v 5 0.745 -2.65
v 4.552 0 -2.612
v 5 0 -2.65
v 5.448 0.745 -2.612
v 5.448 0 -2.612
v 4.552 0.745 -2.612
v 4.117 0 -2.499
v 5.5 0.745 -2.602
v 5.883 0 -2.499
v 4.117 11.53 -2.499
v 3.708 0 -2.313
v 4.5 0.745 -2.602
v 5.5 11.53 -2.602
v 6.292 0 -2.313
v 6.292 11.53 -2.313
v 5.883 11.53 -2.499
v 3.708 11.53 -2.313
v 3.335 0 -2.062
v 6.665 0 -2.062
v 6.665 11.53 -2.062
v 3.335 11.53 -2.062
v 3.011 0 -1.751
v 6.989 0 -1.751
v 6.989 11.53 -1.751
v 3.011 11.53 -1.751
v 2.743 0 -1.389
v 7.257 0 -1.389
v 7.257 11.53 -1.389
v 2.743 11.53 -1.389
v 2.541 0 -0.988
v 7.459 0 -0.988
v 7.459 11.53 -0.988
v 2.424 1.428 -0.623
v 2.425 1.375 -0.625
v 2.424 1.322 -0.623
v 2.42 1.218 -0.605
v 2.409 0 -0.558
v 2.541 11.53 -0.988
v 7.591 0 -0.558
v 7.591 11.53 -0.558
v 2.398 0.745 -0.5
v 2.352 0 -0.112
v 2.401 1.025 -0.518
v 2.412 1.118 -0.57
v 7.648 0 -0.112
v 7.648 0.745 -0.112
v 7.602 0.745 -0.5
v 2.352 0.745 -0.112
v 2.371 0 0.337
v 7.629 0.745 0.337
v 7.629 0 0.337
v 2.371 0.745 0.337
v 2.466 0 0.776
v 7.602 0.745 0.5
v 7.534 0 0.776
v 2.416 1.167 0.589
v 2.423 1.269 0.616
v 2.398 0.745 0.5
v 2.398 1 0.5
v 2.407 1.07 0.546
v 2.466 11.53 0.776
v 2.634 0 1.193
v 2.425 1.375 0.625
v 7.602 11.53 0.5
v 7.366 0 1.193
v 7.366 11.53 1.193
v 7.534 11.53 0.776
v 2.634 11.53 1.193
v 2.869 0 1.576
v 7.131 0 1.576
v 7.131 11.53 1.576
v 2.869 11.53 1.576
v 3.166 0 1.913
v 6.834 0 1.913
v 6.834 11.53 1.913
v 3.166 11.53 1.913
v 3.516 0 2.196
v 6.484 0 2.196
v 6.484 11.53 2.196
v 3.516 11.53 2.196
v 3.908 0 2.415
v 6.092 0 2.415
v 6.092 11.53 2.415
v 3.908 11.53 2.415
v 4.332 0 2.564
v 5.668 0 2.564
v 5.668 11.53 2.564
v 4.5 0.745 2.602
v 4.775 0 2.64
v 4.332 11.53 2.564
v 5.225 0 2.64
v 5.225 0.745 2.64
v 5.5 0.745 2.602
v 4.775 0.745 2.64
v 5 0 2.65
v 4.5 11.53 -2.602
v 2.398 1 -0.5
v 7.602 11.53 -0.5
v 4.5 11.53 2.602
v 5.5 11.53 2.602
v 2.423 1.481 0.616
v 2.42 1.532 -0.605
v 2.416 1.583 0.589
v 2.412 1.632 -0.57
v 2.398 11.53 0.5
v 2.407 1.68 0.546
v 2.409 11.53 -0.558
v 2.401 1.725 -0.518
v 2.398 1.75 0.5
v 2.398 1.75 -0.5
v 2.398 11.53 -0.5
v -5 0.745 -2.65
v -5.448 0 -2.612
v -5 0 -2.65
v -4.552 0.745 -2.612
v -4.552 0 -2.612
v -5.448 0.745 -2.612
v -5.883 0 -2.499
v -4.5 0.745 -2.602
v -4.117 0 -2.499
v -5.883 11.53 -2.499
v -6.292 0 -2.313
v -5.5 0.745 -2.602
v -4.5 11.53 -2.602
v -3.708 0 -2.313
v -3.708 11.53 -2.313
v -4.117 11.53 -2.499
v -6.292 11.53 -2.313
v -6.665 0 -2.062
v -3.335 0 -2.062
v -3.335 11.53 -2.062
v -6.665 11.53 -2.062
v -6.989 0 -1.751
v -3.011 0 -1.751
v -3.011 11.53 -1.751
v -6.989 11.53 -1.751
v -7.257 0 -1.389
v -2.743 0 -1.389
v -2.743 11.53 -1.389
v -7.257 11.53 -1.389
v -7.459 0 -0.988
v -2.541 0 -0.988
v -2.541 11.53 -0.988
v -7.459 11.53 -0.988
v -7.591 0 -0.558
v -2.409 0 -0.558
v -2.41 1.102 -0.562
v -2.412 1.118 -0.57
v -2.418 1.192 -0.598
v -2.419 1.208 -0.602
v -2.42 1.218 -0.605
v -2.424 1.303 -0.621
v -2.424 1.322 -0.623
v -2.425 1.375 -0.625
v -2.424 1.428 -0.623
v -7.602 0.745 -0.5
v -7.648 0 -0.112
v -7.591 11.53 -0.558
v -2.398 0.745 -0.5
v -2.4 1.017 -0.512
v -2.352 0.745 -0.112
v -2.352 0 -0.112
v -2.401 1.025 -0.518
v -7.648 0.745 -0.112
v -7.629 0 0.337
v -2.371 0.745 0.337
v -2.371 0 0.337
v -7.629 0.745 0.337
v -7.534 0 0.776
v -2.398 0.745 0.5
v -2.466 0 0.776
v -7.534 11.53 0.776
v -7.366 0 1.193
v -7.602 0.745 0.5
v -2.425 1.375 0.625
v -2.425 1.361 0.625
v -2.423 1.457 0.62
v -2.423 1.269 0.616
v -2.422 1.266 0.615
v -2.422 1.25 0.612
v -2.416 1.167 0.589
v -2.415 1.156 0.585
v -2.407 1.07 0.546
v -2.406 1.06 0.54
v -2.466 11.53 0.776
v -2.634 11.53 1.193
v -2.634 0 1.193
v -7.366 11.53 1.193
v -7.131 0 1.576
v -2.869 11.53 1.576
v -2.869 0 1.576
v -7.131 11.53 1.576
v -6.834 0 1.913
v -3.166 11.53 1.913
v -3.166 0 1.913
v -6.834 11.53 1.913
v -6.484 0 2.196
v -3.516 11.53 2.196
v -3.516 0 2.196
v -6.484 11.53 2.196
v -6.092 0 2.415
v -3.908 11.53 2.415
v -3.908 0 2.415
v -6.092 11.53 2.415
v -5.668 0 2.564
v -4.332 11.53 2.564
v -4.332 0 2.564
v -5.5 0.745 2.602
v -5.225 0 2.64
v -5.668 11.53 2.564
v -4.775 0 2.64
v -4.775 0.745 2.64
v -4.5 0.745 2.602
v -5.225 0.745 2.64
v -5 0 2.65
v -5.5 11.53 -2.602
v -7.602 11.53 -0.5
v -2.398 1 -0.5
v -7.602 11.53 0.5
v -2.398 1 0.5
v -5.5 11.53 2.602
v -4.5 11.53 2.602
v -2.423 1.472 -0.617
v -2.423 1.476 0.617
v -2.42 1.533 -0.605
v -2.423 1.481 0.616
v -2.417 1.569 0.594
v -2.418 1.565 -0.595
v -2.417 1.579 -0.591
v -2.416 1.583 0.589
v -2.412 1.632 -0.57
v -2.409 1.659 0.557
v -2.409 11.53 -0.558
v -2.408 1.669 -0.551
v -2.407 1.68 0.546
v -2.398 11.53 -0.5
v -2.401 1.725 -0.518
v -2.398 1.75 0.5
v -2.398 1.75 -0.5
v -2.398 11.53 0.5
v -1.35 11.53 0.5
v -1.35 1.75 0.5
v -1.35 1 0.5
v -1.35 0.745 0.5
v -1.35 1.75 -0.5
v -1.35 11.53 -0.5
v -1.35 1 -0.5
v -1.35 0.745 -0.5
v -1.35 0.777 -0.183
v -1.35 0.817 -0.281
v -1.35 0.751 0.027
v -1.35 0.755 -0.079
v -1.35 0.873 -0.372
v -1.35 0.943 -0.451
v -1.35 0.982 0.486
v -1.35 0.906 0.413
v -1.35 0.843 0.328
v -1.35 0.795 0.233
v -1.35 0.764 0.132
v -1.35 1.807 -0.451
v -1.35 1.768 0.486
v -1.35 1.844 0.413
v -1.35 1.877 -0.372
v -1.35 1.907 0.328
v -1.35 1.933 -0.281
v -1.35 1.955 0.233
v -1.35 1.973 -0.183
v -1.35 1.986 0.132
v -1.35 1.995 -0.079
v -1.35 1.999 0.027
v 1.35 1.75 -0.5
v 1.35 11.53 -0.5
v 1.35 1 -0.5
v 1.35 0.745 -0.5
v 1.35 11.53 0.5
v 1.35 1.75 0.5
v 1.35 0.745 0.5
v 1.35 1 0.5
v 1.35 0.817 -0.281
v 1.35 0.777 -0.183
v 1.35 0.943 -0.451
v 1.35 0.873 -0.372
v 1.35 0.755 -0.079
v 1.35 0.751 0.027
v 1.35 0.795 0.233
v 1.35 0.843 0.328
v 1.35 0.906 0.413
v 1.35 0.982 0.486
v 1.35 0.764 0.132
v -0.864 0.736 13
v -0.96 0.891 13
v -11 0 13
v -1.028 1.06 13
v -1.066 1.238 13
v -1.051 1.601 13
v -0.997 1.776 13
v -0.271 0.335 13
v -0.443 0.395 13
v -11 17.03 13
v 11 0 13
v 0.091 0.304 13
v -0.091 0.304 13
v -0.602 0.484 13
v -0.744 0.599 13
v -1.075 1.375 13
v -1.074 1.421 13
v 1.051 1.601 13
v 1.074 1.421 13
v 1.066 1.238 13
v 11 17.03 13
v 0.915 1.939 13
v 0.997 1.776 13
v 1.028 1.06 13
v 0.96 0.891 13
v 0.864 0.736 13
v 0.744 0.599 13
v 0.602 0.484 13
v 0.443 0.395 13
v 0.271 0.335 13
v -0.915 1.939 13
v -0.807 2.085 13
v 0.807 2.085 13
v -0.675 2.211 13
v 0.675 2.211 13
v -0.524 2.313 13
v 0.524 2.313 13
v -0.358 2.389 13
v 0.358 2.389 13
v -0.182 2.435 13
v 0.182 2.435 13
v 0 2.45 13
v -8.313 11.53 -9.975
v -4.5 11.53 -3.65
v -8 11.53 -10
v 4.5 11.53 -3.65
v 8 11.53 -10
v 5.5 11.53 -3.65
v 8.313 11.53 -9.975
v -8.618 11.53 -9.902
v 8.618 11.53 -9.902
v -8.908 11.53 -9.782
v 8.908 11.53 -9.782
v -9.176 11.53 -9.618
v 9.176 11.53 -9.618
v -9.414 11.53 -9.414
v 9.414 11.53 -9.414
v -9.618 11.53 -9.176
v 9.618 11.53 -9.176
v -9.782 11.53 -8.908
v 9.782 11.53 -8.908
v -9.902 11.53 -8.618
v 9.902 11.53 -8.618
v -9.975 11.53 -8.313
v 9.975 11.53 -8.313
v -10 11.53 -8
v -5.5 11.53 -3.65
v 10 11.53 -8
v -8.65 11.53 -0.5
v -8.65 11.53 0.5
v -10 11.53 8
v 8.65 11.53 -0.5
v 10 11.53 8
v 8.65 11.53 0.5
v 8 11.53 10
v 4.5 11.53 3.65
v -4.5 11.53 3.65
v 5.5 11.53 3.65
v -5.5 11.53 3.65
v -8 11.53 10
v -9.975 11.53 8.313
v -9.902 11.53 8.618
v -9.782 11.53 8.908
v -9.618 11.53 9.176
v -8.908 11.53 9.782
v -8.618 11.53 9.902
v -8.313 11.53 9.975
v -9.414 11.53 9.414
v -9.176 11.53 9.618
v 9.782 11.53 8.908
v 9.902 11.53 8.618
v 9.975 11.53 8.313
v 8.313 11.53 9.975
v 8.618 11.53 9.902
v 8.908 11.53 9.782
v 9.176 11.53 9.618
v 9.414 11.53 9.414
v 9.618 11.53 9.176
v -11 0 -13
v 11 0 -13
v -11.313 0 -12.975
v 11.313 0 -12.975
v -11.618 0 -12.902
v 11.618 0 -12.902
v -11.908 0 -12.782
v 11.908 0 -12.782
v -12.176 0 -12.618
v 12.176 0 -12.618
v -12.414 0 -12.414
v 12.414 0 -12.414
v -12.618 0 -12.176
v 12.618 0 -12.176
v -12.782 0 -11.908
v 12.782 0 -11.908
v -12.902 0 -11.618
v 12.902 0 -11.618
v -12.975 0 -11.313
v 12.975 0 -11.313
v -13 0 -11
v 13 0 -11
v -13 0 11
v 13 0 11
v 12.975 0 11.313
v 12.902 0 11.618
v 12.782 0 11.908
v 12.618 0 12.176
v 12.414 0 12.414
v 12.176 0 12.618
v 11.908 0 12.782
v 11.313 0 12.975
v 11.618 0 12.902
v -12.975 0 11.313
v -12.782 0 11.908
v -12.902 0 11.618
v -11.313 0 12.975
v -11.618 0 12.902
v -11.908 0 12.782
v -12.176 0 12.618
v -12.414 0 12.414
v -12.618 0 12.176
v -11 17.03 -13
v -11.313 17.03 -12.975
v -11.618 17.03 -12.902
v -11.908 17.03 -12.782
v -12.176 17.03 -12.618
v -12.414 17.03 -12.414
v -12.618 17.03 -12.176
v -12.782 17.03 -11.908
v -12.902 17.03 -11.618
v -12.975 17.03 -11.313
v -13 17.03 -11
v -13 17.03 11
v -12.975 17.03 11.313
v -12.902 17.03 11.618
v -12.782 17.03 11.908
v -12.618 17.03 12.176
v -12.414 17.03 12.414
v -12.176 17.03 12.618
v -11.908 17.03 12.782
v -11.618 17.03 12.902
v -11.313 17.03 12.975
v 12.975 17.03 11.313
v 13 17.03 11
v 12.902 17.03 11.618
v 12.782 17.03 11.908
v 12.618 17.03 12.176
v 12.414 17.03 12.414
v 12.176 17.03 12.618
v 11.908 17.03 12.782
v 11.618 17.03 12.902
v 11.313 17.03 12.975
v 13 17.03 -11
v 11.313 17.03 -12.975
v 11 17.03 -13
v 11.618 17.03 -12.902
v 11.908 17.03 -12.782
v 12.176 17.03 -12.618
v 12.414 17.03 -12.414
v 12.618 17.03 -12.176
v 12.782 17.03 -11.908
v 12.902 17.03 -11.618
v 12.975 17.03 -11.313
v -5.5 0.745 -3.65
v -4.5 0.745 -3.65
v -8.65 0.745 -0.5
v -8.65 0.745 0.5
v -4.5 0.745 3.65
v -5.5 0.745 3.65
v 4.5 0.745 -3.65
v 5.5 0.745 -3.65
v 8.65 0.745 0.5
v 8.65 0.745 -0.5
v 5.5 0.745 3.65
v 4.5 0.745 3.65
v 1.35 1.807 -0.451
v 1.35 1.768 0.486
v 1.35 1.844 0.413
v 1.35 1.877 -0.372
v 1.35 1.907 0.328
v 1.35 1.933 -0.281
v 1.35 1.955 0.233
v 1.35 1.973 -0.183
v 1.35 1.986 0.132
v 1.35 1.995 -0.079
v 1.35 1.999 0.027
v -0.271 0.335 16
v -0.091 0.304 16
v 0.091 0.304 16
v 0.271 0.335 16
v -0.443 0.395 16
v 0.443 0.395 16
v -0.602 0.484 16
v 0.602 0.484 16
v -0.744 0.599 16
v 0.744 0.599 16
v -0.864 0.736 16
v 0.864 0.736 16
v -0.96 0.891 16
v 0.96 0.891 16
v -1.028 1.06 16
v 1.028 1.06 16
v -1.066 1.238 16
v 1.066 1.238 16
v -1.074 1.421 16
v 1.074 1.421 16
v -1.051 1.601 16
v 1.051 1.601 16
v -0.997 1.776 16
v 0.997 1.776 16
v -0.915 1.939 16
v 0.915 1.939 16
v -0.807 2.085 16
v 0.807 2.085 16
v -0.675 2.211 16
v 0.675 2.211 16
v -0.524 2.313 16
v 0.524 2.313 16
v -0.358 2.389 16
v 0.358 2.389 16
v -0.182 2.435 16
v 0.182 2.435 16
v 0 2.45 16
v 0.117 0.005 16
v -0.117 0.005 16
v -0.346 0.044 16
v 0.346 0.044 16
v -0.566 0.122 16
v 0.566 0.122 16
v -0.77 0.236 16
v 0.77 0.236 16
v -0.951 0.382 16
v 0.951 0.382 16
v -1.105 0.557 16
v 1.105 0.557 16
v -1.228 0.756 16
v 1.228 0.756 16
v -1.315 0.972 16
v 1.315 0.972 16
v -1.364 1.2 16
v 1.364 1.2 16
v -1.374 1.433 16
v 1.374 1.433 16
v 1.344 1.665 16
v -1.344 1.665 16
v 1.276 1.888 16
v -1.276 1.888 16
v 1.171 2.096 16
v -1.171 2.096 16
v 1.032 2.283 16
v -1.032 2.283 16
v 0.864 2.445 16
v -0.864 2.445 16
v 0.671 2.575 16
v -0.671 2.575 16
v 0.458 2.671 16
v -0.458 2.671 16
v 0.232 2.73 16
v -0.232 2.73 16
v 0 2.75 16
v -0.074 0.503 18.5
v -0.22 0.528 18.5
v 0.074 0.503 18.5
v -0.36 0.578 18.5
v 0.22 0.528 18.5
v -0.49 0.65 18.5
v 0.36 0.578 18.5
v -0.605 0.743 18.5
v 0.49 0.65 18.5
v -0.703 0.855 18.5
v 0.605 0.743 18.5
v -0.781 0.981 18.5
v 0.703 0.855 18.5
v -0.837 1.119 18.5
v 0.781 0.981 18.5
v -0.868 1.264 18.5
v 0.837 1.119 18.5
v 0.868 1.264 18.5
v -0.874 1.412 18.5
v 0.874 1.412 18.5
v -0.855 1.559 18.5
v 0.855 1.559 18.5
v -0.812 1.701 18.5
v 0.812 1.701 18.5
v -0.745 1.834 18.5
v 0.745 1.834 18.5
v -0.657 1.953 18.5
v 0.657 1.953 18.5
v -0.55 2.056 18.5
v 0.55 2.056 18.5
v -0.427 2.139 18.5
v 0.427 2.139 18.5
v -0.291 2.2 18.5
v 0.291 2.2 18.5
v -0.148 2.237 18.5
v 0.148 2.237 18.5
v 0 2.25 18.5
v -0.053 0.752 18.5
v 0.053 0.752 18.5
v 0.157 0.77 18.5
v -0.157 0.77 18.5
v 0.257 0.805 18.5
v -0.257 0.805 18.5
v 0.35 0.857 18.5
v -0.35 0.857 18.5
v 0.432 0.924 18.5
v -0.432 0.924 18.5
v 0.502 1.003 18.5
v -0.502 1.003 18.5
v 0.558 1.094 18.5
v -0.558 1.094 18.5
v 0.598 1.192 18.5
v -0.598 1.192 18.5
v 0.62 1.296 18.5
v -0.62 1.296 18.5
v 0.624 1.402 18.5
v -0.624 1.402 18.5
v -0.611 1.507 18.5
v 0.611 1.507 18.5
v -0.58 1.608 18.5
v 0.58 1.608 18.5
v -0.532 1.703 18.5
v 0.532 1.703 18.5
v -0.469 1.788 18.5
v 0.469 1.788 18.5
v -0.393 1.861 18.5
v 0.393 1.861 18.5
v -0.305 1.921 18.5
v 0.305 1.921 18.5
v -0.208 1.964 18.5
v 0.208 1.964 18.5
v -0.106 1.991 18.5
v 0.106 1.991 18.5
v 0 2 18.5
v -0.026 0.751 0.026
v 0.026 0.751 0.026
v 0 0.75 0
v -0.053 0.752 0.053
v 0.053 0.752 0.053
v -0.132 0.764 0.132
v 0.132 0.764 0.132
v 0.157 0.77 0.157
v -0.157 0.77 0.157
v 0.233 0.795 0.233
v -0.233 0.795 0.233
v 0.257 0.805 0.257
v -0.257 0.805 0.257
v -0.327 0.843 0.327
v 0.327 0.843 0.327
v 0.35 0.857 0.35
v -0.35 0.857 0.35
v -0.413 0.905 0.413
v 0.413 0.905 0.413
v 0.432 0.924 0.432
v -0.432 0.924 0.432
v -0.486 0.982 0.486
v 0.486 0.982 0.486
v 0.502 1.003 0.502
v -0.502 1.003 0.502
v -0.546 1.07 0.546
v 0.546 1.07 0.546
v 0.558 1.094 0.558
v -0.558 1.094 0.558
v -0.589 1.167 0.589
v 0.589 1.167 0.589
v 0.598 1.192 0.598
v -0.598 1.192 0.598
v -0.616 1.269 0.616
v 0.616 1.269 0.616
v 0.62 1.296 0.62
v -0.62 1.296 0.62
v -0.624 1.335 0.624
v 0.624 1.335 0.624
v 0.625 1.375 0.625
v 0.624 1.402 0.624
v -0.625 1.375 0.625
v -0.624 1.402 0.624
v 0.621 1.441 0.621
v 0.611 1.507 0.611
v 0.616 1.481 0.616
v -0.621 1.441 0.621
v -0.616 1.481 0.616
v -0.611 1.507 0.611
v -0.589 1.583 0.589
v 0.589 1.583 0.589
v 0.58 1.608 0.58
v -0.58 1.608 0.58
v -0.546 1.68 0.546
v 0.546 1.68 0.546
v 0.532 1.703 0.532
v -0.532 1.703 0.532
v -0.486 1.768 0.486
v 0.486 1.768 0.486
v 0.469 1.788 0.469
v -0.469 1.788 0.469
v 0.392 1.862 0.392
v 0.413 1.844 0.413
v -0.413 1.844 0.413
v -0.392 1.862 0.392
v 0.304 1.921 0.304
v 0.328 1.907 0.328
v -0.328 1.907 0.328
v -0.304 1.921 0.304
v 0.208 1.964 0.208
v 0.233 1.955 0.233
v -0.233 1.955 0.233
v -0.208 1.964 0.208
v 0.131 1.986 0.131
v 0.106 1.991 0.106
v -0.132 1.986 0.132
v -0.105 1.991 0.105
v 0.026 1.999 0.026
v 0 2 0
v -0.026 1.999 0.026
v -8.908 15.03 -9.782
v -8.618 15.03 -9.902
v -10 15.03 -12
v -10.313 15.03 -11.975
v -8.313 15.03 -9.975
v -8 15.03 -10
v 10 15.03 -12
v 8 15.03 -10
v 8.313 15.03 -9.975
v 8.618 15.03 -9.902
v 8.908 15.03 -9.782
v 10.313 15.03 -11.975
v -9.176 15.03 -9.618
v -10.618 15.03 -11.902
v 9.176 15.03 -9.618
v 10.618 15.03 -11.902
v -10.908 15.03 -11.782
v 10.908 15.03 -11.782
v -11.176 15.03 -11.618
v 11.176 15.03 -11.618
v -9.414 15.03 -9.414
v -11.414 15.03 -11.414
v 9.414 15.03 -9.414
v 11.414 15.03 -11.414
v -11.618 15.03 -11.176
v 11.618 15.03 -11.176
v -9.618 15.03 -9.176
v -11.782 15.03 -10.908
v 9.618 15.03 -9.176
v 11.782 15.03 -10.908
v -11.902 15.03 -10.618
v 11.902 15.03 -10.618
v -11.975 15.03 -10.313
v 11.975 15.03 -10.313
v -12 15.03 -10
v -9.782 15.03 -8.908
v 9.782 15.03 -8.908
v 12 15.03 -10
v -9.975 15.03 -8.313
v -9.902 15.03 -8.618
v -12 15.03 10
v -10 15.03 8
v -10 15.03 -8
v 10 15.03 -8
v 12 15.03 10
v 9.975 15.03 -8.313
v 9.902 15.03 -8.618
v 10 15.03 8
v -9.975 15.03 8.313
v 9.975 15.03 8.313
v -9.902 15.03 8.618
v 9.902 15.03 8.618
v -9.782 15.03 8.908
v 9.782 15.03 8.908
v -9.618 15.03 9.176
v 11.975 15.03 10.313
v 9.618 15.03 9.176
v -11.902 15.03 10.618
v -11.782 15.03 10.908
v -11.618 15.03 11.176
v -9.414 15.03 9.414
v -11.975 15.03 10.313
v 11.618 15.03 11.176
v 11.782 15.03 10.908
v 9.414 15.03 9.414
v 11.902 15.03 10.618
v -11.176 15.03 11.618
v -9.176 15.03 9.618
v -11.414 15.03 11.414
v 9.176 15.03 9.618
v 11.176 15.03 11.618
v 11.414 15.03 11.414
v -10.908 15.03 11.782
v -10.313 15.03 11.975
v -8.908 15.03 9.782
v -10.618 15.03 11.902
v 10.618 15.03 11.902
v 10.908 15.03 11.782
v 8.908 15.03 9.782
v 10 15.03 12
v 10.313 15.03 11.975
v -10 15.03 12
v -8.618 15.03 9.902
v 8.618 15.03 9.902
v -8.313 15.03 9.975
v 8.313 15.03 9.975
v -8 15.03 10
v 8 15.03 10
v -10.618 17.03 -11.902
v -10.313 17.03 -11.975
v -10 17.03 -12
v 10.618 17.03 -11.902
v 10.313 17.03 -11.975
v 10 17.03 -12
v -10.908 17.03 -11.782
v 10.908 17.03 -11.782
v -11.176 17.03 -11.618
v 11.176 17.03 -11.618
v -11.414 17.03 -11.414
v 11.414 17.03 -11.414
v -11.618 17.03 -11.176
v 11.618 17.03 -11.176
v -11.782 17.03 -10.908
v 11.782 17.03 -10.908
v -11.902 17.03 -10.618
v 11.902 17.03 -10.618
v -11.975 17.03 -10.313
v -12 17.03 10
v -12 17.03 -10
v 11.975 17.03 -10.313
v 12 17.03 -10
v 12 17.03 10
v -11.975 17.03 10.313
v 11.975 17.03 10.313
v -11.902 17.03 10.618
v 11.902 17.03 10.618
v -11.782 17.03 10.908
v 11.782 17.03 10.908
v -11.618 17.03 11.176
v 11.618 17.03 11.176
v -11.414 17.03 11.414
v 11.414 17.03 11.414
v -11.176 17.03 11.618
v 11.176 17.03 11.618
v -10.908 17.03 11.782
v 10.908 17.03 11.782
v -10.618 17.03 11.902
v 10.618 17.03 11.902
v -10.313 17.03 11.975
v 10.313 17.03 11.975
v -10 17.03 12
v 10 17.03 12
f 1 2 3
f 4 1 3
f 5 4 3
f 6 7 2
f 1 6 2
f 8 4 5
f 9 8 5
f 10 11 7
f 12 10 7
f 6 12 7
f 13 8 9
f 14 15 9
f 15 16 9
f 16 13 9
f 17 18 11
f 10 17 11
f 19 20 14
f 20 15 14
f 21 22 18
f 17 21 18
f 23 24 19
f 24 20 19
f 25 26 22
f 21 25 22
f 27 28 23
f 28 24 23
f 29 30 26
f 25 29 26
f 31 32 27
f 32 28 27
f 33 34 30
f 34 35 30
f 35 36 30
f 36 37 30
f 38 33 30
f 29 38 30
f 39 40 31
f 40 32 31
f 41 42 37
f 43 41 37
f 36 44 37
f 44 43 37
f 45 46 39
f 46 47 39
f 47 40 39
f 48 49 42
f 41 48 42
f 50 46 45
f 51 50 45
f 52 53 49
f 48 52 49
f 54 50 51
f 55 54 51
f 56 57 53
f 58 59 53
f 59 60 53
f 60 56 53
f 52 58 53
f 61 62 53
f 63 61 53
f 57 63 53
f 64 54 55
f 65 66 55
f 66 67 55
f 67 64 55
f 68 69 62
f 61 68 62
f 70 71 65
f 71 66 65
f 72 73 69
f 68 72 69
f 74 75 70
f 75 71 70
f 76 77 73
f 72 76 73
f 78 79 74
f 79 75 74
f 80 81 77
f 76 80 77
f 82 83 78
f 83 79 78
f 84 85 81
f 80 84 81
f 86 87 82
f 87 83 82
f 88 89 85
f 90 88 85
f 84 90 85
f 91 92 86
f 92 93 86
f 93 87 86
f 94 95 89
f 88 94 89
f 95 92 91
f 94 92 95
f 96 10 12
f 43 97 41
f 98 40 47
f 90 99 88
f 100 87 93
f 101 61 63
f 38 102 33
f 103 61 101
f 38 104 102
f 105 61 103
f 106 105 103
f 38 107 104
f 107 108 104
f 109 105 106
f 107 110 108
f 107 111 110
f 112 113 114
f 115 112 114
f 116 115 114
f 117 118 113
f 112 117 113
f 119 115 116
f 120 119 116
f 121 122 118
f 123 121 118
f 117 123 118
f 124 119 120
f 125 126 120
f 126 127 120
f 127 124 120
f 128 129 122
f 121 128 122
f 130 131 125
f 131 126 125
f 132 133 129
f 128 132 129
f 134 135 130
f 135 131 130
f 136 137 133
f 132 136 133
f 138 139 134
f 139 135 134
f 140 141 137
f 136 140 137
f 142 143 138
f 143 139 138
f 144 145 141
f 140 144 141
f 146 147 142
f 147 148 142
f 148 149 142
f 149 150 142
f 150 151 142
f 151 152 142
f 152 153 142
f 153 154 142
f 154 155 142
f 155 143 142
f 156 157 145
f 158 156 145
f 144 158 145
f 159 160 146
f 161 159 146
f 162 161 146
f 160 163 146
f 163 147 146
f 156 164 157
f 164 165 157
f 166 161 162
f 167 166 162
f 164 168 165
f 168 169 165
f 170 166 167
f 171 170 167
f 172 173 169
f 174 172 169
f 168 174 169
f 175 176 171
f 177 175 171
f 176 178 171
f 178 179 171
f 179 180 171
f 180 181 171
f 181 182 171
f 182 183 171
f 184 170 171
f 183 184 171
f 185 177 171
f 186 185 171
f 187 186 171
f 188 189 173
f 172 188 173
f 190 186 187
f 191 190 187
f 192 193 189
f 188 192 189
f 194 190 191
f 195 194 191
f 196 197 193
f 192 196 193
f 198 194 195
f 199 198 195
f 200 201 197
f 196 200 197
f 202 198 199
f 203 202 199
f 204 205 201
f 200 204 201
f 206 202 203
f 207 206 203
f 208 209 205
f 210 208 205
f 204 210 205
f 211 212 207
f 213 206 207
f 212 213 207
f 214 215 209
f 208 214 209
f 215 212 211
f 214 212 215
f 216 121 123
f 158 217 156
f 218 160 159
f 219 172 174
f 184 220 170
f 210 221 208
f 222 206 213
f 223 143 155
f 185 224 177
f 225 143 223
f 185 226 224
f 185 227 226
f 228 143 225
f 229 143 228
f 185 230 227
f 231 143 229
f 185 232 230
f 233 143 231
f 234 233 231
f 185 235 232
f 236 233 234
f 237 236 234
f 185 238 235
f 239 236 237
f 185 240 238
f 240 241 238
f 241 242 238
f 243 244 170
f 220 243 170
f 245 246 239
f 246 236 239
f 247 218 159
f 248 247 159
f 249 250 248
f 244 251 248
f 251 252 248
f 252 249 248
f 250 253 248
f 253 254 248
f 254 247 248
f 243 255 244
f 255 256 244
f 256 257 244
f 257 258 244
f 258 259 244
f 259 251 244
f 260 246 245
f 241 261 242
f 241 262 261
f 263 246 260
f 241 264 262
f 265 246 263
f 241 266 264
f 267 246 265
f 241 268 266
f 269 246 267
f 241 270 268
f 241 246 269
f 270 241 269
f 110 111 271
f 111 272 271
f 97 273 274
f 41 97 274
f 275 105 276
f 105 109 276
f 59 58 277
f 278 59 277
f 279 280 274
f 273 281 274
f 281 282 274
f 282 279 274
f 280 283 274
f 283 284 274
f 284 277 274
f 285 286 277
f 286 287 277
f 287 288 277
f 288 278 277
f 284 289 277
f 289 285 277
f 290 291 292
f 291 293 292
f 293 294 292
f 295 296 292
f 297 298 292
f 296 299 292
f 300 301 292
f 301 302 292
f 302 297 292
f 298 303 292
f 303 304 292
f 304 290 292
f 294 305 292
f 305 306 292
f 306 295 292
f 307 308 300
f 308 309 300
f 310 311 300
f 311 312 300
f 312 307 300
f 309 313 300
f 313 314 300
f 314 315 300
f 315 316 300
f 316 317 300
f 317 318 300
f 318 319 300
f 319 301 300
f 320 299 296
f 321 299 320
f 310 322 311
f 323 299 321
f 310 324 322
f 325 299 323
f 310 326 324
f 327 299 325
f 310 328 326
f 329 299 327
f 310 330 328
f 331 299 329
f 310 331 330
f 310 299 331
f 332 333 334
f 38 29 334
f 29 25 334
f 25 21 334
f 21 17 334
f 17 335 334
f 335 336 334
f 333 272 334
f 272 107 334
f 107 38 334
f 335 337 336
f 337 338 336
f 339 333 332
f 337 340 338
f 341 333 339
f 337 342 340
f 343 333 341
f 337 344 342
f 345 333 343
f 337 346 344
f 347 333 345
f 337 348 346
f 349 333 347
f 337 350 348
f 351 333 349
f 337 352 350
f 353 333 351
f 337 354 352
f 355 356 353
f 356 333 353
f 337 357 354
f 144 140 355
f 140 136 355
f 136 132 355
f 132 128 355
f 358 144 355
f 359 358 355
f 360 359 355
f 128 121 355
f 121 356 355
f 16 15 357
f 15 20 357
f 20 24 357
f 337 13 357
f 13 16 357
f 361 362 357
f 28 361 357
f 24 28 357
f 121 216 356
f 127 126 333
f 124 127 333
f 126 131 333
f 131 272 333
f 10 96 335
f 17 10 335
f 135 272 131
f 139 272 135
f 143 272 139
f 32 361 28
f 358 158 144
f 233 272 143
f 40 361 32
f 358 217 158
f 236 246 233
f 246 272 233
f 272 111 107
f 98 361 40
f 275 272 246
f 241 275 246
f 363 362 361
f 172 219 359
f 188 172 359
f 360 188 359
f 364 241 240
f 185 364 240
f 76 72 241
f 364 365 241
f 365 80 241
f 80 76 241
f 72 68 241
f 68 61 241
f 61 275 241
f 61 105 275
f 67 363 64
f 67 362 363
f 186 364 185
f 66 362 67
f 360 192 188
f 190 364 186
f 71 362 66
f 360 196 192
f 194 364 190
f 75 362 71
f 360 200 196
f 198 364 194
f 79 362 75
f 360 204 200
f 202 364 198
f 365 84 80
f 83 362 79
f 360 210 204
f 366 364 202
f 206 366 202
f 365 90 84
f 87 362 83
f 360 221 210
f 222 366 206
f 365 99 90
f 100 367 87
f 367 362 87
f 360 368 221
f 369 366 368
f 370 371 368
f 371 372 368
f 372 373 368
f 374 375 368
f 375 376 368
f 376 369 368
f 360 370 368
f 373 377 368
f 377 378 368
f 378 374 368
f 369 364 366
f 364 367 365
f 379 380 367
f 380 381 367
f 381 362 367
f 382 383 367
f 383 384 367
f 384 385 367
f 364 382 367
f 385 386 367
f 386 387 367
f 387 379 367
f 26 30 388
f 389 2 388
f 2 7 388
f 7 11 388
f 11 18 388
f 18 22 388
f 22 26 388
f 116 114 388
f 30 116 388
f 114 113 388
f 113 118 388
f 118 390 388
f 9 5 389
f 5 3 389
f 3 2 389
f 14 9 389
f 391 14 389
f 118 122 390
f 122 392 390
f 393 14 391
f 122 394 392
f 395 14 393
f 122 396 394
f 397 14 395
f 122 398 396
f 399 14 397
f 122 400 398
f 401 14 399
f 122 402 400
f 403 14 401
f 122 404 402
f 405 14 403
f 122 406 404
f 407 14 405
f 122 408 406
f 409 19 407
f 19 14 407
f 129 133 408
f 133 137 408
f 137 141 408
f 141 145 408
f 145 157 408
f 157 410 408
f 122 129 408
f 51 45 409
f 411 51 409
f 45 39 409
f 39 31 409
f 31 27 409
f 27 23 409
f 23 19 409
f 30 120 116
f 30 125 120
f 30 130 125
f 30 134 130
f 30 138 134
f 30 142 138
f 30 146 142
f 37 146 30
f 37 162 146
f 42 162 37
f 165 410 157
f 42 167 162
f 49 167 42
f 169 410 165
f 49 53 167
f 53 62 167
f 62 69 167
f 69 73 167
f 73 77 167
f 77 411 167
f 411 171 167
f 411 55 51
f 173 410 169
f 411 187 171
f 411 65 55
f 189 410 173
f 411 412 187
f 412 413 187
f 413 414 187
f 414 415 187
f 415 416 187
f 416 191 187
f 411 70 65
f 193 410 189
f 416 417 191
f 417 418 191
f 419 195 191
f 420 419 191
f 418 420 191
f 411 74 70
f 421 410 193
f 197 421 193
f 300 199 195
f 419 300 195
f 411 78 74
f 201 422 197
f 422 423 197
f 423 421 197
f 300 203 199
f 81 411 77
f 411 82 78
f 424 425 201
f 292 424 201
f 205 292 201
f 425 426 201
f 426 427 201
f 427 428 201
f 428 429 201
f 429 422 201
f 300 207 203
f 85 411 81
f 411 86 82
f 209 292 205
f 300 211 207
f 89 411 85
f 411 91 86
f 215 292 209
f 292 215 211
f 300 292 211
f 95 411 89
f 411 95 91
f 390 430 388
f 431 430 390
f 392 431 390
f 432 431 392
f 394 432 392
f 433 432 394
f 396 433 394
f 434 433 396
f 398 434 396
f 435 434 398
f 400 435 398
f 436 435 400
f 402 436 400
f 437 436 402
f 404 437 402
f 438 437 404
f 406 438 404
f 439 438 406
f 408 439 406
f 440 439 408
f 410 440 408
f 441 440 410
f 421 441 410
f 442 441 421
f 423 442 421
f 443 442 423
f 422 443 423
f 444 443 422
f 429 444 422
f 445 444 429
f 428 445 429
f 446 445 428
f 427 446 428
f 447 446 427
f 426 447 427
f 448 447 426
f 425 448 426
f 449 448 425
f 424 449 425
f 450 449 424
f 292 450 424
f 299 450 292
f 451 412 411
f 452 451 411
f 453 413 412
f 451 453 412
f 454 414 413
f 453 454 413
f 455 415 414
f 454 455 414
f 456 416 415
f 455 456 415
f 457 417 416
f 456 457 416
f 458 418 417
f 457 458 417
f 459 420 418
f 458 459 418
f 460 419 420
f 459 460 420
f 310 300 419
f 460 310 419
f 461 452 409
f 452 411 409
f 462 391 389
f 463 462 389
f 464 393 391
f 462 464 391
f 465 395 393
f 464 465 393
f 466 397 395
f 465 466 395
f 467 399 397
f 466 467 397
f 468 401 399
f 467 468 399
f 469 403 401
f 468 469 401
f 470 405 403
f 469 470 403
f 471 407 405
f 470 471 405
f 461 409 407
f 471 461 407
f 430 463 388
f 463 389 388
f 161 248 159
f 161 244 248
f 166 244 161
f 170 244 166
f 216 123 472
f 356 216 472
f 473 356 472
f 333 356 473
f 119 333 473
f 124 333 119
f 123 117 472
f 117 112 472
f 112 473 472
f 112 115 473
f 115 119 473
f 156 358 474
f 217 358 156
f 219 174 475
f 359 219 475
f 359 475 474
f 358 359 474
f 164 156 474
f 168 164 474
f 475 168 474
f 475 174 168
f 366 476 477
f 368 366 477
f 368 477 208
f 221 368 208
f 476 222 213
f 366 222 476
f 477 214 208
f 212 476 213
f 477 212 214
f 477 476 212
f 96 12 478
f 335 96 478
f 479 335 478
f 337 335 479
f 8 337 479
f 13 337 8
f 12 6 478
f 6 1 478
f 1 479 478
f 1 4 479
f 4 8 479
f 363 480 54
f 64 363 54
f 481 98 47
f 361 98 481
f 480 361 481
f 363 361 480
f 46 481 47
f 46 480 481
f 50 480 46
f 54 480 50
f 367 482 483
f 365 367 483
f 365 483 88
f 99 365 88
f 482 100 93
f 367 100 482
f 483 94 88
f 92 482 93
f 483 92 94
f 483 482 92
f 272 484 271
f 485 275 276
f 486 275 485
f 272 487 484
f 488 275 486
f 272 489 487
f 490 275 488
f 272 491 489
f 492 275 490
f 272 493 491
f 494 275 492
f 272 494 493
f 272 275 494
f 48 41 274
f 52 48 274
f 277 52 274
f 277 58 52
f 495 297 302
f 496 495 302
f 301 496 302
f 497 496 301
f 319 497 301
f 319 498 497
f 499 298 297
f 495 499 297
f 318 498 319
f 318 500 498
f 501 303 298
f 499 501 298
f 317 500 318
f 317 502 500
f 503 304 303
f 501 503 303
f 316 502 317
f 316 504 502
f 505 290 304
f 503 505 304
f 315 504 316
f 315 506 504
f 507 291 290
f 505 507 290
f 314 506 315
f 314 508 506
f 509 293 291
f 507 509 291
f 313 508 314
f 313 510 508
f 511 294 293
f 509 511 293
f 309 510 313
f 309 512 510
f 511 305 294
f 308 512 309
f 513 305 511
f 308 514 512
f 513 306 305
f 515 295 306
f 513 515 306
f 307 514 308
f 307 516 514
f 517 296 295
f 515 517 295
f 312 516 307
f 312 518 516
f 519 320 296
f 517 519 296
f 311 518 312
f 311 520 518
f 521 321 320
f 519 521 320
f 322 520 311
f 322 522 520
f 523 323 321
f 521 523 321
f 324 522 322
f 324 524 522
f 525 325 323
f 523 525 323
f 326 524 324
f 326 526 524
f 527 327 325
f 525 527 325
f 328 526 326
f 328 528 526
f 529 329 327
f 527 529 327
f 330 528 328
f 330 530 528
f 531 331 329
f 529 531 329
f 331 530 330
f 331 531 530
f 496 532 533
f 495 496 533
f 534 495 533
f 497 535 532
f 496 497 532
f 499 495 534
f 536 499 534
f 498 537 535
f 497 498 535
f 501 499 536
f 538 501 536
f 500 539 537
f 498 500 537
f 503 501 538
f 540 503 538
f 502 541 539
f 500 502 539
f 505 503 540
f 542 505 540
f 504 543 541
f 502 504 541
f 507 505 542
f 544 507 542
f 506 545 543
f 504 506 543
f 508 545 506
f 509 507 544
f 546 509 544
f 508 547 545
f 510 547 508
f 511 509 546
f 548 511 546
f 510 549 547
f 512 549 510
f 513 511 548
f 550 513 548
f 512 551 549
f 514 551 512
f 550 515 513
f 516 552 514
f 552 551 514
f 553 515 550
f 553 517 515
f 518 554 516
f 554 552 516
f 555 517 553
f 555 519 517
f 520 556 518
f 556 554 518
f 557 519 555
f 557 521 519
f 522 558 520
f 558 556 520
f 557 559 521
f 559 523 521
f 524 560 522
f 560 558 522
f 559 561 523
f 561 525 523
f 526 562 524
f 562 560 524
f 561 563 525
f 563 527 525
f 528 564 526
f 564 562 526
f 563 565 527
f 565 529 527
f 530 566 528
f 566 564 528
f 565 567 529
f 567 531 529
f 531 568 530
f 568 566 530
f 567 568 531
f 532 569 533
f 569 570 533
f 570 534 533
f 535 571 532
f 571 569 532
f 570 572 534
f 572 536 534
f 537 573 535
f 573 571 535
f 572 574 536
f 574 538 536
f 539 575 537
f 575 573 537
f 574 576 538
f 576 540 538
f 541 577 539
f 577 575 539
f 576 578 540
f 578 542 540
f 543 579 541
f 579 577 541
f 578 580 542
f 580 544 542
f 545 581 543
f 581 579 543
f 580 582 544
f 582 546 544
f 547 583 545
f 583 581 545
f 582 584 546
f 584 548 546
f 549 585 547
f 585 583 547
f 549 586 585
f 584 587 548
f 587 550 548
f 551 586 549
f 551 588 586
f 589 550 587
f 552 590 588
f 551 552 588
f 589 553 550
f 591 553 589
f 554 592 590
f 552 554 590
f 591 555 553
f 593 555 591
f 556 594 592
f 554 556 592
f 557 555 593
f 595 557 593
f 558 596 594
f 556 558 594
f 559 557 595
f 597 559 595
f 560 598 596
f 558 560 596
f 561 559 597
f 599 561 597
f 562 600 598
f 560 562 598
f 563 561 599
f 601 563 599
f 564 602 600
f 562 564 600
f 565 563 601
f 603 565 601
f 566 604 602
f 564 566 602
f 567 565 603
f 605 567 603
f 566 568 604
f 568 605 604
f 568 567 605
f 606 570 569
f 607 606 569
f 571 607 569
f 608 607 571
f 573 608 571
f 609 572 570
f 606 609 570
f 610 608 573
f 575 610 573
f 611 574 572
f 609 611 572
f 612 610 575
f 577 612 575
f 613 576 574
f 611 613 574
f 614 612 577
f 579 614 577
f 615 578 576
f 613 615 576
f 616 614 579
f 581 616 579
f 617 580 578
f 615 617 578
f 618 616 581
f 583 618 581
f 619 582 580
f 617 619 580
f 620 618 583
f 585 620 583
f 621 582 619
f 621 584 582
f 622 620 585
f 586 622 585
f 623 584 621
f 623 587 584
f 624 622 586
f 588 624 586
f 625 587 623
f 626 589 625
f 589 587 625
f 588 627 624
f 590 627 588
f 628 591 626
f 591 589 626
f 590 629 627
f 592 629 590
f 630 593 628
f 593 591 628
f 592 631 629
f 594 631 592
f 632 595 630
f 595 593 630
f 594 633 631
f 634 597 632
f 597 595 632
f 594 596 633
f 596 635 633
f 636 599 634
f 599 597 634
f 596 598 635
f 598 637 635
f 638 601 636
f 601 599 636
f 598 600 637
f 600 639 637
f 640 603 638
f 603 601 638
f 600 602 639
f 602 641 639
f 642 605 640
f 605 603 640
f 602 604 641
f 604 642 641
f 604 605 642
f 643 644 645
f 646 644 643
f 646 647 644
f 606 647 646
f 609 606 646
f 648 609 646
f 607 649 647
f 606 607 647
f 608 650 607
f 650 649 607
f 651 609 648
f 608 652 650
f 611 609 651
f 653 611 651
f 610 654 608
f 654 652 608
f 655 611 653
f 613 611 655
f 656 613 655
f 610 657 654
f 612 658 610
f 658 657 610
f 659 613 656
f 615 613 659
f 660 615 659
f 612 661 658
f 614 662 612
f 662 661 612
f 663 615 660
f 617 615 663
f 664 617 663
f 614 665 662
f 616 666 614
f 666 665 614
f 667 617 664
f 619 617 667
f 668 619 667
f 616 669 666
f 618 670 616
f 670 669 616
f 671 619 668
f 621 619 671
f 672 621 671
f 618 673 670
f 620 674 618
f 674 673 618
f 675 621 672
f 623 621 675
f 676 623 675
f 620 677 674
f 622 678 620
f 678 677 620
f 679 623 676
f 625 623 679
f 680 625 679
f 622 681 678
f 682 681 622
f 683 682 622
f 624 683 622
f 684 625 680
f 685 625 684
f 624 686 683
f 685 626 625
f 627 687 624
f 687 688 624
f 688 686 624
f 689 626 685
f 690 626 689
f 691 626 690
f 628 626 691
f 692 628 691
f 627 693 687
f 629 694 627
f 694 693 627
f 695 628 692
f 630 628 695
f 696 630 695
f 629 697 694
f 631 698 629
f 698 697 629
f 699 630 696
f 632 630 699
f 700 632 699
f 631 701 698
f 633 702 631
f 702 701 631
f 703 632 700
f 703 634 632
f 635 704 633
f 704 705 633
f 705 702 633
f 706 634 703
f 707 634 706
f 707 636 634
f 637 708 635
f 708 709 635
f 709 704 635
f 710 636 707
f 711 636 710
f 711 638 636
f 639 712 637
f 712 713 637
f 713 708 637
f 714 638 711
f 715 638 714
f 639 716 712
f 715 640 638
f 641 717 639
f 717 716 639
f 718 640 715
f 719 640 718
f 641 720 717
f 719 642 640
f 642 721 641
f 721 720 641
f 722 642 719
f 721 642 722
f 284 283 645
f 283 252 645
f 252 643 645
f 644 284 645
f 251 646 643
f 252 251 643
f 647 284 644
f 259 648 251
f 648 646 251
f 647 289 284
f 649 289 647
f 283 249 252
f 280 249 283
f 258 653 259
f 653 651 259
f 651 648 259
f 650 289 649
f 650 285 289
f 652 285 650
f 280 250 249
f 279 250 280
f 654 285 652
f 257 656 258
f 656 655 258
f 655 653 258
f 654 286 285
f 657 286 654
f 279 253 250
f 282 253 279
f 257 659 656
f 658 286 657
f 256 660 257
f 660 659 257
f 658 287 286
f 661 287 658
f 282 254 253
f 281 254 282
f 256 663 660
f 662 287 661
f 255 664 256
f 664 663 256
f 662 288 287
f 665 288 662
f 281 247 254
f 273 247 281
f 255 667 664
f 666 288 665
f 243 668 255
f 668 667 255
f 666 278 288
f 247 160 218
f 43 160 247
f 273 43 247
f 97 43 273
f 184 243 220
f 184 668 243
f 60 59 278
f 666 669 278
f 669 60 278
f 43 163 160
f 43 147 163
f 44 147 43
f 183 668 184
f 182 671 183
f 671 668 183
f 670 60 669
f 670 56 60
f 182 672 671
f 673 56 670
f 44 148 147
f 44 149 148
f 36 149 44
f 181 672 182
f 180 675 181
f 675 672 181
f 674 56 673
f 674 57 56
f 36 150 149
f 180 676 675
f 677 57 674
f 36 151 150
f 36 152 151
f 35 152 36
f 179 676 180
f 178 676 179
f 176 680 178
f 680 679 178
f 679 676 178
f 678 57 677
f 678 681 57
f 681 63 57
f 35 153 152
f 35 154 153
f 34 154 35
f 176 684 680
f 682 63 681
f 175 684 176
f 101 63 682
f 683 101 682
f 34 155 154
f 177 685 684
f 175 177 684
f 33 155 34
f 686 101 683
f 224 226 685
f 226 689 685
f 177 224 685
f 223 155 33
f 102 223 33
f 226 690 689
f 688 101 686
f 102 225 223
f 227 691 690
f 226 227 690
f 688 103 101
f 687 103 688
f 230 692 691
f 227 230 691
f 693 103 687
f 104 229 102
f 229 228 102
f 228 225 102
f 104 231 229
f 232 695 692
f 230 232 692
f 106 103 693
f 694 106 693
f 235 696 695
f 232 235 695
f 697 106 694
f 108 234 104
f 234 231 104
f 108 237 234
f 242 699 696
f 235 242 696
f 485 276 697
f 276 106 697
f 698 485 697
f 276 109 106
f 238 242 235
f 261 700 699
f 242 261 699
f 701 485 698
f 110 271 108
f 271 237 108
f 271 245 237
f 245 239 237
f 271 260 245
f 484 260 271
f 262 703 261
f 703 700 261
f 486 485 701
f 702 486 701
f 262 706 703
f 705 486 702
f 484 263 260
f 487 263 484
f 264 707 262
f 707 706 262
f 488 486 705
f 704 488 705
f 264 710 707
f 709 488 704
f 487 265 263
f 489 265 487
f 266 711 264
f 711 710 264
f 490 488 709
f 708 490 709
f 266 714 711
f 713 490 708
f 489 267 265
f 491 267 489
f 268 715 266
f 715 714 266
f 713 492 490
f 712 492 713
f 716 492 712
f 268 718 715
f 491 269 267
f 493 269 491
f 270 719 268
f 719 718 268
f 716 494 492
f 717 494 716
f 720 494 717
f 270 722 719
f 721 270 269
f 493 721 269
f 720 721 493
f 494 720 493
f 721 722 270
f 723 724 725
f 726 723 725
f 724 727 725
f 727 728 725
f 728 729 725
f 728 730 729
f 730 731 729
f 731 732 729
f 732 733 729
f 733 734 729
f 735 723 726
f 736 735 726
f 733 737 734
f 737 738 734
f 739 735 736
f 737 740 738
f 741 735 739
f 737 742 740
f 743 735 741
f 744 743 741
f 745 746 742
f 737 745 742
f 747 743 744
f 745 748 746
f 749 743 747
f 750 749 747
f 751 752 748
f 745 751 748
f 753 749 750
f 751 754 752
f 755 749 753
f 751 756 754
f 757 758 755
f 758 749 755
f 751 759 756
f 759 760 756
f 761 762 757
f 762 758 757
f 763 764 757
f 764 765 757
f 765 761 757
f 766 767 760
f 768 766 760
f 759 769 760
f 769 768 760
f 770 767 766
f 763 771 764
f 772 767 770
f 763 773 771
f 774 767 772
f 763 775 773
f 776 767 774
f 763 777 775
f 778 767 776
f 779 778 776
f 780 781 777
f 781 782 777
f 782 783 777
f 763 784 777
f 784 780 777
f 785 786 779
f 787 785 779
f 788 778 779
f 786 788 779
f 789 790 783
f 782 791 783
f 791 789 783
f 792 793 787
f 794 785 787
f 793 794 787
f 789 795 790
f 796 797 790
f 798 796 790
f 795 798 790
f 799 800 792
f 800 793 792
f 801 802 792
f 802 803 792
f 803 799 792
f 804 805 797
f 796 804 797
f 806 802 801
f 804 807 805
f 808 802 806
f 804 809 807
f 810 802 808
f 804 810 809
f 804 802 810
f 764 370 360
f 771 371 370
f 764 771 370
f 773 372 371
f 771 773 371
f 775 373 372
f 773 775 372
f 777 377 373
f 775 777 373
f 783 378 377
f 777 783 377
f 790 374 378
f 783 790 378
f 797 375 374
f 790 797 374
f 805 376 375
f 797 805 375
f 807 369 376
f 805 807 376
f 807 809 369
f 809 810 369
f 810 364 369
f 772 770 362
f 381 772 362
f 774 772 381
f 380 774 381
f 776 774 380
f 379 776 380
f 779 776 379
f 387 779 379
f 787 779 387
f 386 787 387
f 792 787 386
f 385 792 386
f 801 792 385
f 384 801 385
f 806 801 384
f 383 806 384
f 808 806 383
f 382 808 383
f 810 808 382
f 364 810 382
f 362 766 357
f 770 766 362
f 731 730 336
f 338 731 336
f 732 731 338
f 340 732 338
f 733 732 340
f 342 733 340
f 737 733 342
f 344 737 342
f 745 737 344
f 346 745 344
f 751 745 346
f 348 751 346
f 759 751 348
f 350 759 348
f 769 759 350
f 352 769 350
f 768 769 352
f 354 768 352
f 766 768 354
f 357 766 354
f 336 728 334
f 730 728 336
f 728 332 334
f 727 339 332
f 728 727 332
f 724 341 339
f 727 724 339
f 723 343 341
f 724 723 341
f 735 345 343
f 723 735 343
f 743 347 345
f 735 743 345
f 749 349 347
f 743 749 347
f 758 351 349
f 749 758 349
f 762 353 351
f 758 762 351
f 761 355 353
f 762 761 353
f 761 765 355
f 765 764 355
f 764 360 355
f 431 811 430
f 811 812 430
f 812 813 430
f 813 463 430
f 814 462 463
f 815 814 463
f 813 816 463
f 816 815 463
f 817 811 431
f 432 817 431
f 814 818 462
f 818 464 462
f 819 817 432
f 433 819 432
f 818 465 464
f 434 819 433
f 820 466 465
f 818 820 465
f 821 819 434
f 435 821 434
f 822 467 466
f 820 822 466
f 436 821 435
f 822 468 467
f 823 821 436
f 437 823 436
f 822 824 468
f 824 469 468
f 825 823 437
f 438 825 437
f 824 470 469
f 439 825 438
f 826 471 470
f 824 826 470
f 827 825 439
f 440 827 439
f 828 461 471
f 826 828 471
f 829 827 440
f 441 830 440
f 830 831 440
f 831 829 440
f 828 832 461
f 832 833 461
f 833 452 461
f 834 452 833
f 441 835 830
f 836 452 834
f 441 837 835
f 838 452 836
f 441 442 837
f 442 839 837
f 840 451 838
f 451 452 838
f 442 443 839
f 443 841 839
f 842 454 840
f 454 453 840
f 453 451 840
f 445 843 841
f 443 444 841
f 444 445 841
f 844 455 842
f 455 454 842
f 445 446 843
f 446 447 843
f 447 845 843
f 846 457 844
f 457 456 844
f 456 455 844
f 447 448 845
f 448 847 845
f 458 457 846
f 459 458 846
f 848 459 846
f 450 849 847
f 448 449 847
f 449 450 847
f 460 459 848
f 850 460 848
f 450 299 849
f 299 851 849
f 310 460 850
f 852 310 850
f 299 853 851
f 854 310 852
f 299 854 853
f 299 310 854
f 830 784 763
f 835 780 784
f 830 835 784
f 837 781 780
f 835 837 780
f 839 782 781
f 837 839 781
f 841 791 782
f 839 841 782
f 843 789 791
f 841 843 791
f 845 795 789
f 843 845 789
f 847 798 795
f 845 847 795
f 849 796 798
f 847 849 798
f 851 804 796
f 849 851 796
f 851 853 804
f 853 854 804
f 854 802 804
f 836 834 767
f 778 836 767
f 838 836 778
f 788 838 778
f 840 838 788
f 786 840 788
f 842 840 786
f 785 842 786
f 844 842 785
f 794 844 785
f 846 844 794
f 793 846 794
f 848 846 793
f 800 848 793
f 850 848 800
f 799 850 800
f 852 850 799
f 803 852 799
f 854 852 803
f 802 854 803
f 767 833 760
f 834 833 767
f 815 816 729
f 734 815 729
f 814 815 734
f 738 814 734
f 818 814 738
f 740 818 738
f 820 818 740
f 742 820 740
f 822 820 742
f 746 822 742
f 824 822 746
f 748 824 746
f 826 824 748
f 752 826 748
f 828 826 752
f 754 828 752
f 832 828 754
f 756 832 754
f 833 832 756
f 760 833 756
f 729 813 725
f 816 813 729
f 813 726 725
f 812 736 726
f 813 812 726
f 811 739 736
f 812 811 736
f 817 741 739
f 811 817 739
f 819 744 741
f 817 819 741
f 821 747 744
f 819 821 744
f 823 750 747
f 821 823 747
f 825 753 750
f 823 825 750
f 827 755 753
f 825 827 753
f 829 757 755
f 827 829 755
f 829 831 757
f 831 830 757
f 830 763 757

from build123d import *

# Parameters (mm, degrees)
SKETCH1_R                      = 2.65
BOSS_EXTRUDE1_DEPTH            = 11.53
CUT_EXTRUDE1_START             = -10.785
CUT_EXTRUDE1_DEPTH             = 10.785
CUT_EXTRUDE3_REACH             = 27.381
SKETCH10_R                     = 0.625
CUT_EXTRUDE3_DIRECTION_2_REACH = 27.381
CUT_EXTRUDE2_REACH             = 33.272
SKETCH5_R                      = 0.625
BOSS_EXTRUDE2_DEPTH            = 3.5
BOSS_EXTRUDE3_DEPTH            = 2


with BuildPart() as part:
    # Sketch1 → Boss-Extrude1 (new body)
    with BuildSketch(Plane(origin=(0, 0, 0), x_dir=(1, 0, 0), z_dir=(0, 1, 0))):
        with BuildLine():
            Line((-11, -13), (11, -13))
            ThreePointArc((11, -13), (12.414213562, -12.414213562), (13, -11))
            Line((13, -11), (13, 11))
            ThreePointArc((13, 11), (12.414213562, 12.414213562), (11, 13))
            Line((11, 13), (-11, 13))
            ThreePointArc((-11, 13), (-12.414213562, 12.414213562), (-13, 11))
            Line((-13, 11), (-13, -11))
            ThreePointArc((-13, -11), (-12.414213562, -12.414213562), (-11, -13))
        make_face()
        with Locations(Location((5, 0, 0), (0, 0, 270))):
            Circle(SKETCH1_R, mode=Mode.SUBTRACT)
        with Locations(Location((-5, 0, 0), (0, 0, 270))):
            Circle(SKETCH1_R, mode=Mode.SUBTRACT)
    extrude(amount=BOSS_EXTRUDE1_DEPTH)

    # Sketch2 → Cut-Extrude1 (cut)
    with BuildSketch(Plane(origin=(0, 11.53, 0), x_dir=(1, 0, 0), z_dir=(0, 1, 0)).offset(CUT_EXTRUDE1_START)):
        with BuildLine():
            Line((4.5, 3.65), (4.5, 2.602402736))
            ThreePointArc((4.5, 2.602402736), (5, 2.65), (5.5, 2.602402736))
            Line((5.5, 2.602402736), (5.5, 3.65))
            Line((5.5, 3.65), (4.5, 3.65))
        make_face()
        with BuildLine():
            ThreePointArc((7.65, 0), (7.638073848, -0.251130195), (7.602402736, -0.5))
            Line((7.602402736, -0.5), (8.65, -0.5))
            Line((8.65, -0.5), (8.65, 0.5))
            Line((8.65, 0.5), (7.602402736, 0.5))
            ThreePointArc((7.602402736, 0.5), (7.638073848, 0.251130195), (7.65, 0))
        make_face()
        with BuildLine():
            Line((4.5, -2.602402736), (4.5, -3.65))
            Line((4.5, -3.65), (5.5, -3.65))
            Line((5.5, -3.65), (5.5, -2.602402736))
            ThreePointArc((5.5, -2.602402736), (5, -2.65), (4.5, -2.602402736))
        make_face()
        with BuildLine():
            Line((1.35, -0.5), (2.397597264, -0.5))
            ThreePointArc((2.397597264, -0.5), (2.35, 0), (2.397597264, 0.5))
            Line((2.397597264, 0.5), (1.35, 0.5))
            Line((1.35, 0.5), (1.35, -0.5))
        make_face()
        with BuildLine():
            ThreePointArc((-2.35, 0), (-2.361926152, -0.251130195), (-2.397597264, -0.5))
            Line((-2.397597264, -0.5), (-1.35, -0.5))
            Line((-1.35, -0.5), (-1.35, 0.5))
            Line((-1.35, 0.5), (-2.397597264, 0.5))
            ThreePointArc((-2.397597264, 0.5), (-2.361926152, 0.251130195), (-2.35, 0))
        make_face()
        with BuildLine():
            Line((-5.5, 3.65), (-5.5, 2.602402736))
            ThreePointArc((-5.5, 2.602402736), (-5, 2.65), (-4.5, 2.602402736))
            Line((-4.5, 2.602402736), (-4.5, 3.65))
            Line((-4.5, 3.65), (-5.5, 3.65))
        make_face()
        with BuildLine():
            Line((-8.65, 0.5), (-8.65, -0.5))
            Line((-8.65, -0.5), (-7.602402736, -0.5))
            ThreePointArc((-7.602402736, -0.5), (-7.65, 0), (-7.602402736, 0.5))
            Line((-7.602402736, 0.5), (-8.65, 0.5))
        make_face()
        with BuildLine():
            ThreePointArc((-4.5, -2.602402736), (-5, -2.65), (-5.5, -2.602402736))
            Line((-5.5, -2.602402736), (-5.5, -3.65))
            Line((-5.5, -3.65), (-4.5, -3.65))
            Line((-4.5, -3.65), (-4.5, -2.602402736))
        make_face()
    extrude(amount=CUT_EXTRUDE1_DEPTH, mode=Mode.SUBTRACT)

    # Sketch3 → Revolve1 (revolve)
    with BuildSketch(Plane(origin=(0, 0, 0), x_dir=(0, 0, -1), z_dir=(1, 0, 0)), mode=Mode.PRIVATE) as revolve1_sk:
        Polygon((-13, 0.3), (-16, 0.3), (-16, 0), (-18.5, 0.5), (-18.5, 0.75), (-13, 0.75), align=None)
    revolve(revolve1_sk.sketch.rotate(Axis((0, 1.375, 13), (0, 0, 1)), 180), axis=Axis((0, 1.375, 13), (0, 0, 1)))

    # Sketch10 → Cut-Extrude3 (cut, up to next)
    with BuildSketch(Plane(origin=(0, 0, 0), x_dir=(0, 0, -1), z_dir=(1, 0, 0)), mode=Mode.PRIVATE) as cut_extrude3_sk1:
        with Locations(Location((0, 1.375, 0), (0, 0, 143.130102406))):
            Circle(SKETCH10_R)
    cut_extrude3_tool1 = extrude(cut_extrude3_sk1.sketch, amount=-CUT_EXTRUDE3_REACH, mode=Mode.PRIVATE) & part.part
    add(cut_extrude3_tool1.solids().sort_by_distance((0, 1.375, 0))[0], mode=Mode.SUBTRACT)

    # Sketch10 → Cut-Extrude3 direction 2 (cut, up to next)
    with BuildSketch(Plane(origin=(0, 0, 0), x_dir=(0, 0, -1), z_dir=(1, 0, 0)), mode=Mode.PRIVATE) as cut_extrude3_direction_2_sk1:
        with Locations(Location((0, 1.375, 0), (0, 0, 143.130102406))):
            Circle(SKETCH10_R)
    cut_extrude3_direction_2_tool1 = extrude(cut_extrude3_direction_2_sk1.sketch, amount=CUT_EXTRUDE3_DIRECTION_2_REACH, mode=Mode.PRIVATE) & part.part
    add(cut_extrude3_direction_2_tool1.solids().sort_by_distance((0, 1.375, 0))[0], mode=Mode.SUBTRACT)

    # Sketch5 → Cut-Extrude2 (cut, up to next)
    with BuildSketch(Plane.XY.offset(13), mode=Mode.PRIVATE) as cut_extrude2_sk1:
        with Locations(Location((0, 1.375, 0), (0, 0, 90))):
            Circle(SKETCH5_R)
    cut_extrude2_tool1 = extrude(cut_extrude2_sk1.sketch, amount=-CUT_EXTRUDE2_REACH, mode=Mode.PRIVATE) & part.part
    add(cut_extrude2_tool1.solids().sort_by_distance((0, 1.375, 13))[0], mode=Mode.SUBTRACT)

    # Sketch6 → Boss-Extrude2 (add)
    with BuildSketch(Plane(origin=(0, 11.53, 0), x_dir=(1, 0, 0), z_dir=(0, 1, 0))):
        with BuildLine():
            Line((-11, -13), (11, -13))
            ThreePointArc((11, -13), (12.414213562, -12.414213562), (13, -11))
            Line((13, -11), (13, 11))
            ThreePointArc((13, 11), (12.414213562, 12.414213562), (11, 13))
            Line((11, 13), (-11, 13))
            ThreePointArc((-11, 13), (-12.414213562, 12.414213562), (-13, 11))
            Line((-13, 11), (-13, -11))
            ThreePointArc((-13, -11), (-12.414213562, -12.414213562), (-11, -13))
        make_face()
        with BuildLine():
            Line((-8, -10), (8, -10))
            ThreePointArc((8, -10), (9.414213562, -9.414213562), (10, -8))
            Line((10, -8), (10, 8))
            ThreePointArc((10, 8), (9.414213562, 9.414213562), (8, 10))
            Line((8, 10), (-8, 10))
            ThreePointArc((-8, 10), (-9.414213562, 9.414213562), (-10, 8))
            Line((-10, 8), (-10, -8))
            ThreePointArc((-10, -8), (-9.414213562, -9.414213562), (-8, -10))
        make_face(mode=Mode.SUBTRACT)
    extrude(amount=BOSS_EXTRUDE2_DEPTH)

    # Sketch8 → Boss-Extrude3 (add)
    with BuildSketch(Plane(origin=(0, 15.03, 0), x_dir=(1, 0, 0), z_dir=(0, 1, 0))):
        with BuildLine():
            Line((-11, -13), (11, -13))
            ThreePointArc((11, -13), (12.414213562, -12.414213562), (13, -11))
            Line((13, -11), (13, 11))
            ThreePointArc((13, 11), (12.414213562, 12.414213562), (11, 13))
            Line((11, 13), (-11, 13))
            ThreePointArc((-11, 13), (-12.414213562, 12.414213562), (-13, 11))
            Line((-13, 11), (-13, -11))
            ThreePointArc((-13, -11), (-12.414213562, -12.414213562), (-11, -13))
        make_face()
        with BuildLine():
            Line((-10, -12), (10, -12))
            ThreePointArc((10, -12), (11.414213562, -11.414213562), (12, -10))
            Line((12, -10), (12, 10))
            ThreePointArc((12, 10), (11.414213562, 11.414213562), (10, 12))
            Line((10, 12), (-10, 12))
            ThreePointArc((-10, 12), (-11.414213562, 11.414213562), (-12, 10))
            Line((-12, 10), (-12, -10))
            ThreePointArc((-12, -10), (-11.414213562, -11.414213562), (-10, -12))
        make_face(mode=Mode.SUBTRACT)
    extrude(amount=BOSS_EXTRUDE3_DEPTH)


solid = part.part
